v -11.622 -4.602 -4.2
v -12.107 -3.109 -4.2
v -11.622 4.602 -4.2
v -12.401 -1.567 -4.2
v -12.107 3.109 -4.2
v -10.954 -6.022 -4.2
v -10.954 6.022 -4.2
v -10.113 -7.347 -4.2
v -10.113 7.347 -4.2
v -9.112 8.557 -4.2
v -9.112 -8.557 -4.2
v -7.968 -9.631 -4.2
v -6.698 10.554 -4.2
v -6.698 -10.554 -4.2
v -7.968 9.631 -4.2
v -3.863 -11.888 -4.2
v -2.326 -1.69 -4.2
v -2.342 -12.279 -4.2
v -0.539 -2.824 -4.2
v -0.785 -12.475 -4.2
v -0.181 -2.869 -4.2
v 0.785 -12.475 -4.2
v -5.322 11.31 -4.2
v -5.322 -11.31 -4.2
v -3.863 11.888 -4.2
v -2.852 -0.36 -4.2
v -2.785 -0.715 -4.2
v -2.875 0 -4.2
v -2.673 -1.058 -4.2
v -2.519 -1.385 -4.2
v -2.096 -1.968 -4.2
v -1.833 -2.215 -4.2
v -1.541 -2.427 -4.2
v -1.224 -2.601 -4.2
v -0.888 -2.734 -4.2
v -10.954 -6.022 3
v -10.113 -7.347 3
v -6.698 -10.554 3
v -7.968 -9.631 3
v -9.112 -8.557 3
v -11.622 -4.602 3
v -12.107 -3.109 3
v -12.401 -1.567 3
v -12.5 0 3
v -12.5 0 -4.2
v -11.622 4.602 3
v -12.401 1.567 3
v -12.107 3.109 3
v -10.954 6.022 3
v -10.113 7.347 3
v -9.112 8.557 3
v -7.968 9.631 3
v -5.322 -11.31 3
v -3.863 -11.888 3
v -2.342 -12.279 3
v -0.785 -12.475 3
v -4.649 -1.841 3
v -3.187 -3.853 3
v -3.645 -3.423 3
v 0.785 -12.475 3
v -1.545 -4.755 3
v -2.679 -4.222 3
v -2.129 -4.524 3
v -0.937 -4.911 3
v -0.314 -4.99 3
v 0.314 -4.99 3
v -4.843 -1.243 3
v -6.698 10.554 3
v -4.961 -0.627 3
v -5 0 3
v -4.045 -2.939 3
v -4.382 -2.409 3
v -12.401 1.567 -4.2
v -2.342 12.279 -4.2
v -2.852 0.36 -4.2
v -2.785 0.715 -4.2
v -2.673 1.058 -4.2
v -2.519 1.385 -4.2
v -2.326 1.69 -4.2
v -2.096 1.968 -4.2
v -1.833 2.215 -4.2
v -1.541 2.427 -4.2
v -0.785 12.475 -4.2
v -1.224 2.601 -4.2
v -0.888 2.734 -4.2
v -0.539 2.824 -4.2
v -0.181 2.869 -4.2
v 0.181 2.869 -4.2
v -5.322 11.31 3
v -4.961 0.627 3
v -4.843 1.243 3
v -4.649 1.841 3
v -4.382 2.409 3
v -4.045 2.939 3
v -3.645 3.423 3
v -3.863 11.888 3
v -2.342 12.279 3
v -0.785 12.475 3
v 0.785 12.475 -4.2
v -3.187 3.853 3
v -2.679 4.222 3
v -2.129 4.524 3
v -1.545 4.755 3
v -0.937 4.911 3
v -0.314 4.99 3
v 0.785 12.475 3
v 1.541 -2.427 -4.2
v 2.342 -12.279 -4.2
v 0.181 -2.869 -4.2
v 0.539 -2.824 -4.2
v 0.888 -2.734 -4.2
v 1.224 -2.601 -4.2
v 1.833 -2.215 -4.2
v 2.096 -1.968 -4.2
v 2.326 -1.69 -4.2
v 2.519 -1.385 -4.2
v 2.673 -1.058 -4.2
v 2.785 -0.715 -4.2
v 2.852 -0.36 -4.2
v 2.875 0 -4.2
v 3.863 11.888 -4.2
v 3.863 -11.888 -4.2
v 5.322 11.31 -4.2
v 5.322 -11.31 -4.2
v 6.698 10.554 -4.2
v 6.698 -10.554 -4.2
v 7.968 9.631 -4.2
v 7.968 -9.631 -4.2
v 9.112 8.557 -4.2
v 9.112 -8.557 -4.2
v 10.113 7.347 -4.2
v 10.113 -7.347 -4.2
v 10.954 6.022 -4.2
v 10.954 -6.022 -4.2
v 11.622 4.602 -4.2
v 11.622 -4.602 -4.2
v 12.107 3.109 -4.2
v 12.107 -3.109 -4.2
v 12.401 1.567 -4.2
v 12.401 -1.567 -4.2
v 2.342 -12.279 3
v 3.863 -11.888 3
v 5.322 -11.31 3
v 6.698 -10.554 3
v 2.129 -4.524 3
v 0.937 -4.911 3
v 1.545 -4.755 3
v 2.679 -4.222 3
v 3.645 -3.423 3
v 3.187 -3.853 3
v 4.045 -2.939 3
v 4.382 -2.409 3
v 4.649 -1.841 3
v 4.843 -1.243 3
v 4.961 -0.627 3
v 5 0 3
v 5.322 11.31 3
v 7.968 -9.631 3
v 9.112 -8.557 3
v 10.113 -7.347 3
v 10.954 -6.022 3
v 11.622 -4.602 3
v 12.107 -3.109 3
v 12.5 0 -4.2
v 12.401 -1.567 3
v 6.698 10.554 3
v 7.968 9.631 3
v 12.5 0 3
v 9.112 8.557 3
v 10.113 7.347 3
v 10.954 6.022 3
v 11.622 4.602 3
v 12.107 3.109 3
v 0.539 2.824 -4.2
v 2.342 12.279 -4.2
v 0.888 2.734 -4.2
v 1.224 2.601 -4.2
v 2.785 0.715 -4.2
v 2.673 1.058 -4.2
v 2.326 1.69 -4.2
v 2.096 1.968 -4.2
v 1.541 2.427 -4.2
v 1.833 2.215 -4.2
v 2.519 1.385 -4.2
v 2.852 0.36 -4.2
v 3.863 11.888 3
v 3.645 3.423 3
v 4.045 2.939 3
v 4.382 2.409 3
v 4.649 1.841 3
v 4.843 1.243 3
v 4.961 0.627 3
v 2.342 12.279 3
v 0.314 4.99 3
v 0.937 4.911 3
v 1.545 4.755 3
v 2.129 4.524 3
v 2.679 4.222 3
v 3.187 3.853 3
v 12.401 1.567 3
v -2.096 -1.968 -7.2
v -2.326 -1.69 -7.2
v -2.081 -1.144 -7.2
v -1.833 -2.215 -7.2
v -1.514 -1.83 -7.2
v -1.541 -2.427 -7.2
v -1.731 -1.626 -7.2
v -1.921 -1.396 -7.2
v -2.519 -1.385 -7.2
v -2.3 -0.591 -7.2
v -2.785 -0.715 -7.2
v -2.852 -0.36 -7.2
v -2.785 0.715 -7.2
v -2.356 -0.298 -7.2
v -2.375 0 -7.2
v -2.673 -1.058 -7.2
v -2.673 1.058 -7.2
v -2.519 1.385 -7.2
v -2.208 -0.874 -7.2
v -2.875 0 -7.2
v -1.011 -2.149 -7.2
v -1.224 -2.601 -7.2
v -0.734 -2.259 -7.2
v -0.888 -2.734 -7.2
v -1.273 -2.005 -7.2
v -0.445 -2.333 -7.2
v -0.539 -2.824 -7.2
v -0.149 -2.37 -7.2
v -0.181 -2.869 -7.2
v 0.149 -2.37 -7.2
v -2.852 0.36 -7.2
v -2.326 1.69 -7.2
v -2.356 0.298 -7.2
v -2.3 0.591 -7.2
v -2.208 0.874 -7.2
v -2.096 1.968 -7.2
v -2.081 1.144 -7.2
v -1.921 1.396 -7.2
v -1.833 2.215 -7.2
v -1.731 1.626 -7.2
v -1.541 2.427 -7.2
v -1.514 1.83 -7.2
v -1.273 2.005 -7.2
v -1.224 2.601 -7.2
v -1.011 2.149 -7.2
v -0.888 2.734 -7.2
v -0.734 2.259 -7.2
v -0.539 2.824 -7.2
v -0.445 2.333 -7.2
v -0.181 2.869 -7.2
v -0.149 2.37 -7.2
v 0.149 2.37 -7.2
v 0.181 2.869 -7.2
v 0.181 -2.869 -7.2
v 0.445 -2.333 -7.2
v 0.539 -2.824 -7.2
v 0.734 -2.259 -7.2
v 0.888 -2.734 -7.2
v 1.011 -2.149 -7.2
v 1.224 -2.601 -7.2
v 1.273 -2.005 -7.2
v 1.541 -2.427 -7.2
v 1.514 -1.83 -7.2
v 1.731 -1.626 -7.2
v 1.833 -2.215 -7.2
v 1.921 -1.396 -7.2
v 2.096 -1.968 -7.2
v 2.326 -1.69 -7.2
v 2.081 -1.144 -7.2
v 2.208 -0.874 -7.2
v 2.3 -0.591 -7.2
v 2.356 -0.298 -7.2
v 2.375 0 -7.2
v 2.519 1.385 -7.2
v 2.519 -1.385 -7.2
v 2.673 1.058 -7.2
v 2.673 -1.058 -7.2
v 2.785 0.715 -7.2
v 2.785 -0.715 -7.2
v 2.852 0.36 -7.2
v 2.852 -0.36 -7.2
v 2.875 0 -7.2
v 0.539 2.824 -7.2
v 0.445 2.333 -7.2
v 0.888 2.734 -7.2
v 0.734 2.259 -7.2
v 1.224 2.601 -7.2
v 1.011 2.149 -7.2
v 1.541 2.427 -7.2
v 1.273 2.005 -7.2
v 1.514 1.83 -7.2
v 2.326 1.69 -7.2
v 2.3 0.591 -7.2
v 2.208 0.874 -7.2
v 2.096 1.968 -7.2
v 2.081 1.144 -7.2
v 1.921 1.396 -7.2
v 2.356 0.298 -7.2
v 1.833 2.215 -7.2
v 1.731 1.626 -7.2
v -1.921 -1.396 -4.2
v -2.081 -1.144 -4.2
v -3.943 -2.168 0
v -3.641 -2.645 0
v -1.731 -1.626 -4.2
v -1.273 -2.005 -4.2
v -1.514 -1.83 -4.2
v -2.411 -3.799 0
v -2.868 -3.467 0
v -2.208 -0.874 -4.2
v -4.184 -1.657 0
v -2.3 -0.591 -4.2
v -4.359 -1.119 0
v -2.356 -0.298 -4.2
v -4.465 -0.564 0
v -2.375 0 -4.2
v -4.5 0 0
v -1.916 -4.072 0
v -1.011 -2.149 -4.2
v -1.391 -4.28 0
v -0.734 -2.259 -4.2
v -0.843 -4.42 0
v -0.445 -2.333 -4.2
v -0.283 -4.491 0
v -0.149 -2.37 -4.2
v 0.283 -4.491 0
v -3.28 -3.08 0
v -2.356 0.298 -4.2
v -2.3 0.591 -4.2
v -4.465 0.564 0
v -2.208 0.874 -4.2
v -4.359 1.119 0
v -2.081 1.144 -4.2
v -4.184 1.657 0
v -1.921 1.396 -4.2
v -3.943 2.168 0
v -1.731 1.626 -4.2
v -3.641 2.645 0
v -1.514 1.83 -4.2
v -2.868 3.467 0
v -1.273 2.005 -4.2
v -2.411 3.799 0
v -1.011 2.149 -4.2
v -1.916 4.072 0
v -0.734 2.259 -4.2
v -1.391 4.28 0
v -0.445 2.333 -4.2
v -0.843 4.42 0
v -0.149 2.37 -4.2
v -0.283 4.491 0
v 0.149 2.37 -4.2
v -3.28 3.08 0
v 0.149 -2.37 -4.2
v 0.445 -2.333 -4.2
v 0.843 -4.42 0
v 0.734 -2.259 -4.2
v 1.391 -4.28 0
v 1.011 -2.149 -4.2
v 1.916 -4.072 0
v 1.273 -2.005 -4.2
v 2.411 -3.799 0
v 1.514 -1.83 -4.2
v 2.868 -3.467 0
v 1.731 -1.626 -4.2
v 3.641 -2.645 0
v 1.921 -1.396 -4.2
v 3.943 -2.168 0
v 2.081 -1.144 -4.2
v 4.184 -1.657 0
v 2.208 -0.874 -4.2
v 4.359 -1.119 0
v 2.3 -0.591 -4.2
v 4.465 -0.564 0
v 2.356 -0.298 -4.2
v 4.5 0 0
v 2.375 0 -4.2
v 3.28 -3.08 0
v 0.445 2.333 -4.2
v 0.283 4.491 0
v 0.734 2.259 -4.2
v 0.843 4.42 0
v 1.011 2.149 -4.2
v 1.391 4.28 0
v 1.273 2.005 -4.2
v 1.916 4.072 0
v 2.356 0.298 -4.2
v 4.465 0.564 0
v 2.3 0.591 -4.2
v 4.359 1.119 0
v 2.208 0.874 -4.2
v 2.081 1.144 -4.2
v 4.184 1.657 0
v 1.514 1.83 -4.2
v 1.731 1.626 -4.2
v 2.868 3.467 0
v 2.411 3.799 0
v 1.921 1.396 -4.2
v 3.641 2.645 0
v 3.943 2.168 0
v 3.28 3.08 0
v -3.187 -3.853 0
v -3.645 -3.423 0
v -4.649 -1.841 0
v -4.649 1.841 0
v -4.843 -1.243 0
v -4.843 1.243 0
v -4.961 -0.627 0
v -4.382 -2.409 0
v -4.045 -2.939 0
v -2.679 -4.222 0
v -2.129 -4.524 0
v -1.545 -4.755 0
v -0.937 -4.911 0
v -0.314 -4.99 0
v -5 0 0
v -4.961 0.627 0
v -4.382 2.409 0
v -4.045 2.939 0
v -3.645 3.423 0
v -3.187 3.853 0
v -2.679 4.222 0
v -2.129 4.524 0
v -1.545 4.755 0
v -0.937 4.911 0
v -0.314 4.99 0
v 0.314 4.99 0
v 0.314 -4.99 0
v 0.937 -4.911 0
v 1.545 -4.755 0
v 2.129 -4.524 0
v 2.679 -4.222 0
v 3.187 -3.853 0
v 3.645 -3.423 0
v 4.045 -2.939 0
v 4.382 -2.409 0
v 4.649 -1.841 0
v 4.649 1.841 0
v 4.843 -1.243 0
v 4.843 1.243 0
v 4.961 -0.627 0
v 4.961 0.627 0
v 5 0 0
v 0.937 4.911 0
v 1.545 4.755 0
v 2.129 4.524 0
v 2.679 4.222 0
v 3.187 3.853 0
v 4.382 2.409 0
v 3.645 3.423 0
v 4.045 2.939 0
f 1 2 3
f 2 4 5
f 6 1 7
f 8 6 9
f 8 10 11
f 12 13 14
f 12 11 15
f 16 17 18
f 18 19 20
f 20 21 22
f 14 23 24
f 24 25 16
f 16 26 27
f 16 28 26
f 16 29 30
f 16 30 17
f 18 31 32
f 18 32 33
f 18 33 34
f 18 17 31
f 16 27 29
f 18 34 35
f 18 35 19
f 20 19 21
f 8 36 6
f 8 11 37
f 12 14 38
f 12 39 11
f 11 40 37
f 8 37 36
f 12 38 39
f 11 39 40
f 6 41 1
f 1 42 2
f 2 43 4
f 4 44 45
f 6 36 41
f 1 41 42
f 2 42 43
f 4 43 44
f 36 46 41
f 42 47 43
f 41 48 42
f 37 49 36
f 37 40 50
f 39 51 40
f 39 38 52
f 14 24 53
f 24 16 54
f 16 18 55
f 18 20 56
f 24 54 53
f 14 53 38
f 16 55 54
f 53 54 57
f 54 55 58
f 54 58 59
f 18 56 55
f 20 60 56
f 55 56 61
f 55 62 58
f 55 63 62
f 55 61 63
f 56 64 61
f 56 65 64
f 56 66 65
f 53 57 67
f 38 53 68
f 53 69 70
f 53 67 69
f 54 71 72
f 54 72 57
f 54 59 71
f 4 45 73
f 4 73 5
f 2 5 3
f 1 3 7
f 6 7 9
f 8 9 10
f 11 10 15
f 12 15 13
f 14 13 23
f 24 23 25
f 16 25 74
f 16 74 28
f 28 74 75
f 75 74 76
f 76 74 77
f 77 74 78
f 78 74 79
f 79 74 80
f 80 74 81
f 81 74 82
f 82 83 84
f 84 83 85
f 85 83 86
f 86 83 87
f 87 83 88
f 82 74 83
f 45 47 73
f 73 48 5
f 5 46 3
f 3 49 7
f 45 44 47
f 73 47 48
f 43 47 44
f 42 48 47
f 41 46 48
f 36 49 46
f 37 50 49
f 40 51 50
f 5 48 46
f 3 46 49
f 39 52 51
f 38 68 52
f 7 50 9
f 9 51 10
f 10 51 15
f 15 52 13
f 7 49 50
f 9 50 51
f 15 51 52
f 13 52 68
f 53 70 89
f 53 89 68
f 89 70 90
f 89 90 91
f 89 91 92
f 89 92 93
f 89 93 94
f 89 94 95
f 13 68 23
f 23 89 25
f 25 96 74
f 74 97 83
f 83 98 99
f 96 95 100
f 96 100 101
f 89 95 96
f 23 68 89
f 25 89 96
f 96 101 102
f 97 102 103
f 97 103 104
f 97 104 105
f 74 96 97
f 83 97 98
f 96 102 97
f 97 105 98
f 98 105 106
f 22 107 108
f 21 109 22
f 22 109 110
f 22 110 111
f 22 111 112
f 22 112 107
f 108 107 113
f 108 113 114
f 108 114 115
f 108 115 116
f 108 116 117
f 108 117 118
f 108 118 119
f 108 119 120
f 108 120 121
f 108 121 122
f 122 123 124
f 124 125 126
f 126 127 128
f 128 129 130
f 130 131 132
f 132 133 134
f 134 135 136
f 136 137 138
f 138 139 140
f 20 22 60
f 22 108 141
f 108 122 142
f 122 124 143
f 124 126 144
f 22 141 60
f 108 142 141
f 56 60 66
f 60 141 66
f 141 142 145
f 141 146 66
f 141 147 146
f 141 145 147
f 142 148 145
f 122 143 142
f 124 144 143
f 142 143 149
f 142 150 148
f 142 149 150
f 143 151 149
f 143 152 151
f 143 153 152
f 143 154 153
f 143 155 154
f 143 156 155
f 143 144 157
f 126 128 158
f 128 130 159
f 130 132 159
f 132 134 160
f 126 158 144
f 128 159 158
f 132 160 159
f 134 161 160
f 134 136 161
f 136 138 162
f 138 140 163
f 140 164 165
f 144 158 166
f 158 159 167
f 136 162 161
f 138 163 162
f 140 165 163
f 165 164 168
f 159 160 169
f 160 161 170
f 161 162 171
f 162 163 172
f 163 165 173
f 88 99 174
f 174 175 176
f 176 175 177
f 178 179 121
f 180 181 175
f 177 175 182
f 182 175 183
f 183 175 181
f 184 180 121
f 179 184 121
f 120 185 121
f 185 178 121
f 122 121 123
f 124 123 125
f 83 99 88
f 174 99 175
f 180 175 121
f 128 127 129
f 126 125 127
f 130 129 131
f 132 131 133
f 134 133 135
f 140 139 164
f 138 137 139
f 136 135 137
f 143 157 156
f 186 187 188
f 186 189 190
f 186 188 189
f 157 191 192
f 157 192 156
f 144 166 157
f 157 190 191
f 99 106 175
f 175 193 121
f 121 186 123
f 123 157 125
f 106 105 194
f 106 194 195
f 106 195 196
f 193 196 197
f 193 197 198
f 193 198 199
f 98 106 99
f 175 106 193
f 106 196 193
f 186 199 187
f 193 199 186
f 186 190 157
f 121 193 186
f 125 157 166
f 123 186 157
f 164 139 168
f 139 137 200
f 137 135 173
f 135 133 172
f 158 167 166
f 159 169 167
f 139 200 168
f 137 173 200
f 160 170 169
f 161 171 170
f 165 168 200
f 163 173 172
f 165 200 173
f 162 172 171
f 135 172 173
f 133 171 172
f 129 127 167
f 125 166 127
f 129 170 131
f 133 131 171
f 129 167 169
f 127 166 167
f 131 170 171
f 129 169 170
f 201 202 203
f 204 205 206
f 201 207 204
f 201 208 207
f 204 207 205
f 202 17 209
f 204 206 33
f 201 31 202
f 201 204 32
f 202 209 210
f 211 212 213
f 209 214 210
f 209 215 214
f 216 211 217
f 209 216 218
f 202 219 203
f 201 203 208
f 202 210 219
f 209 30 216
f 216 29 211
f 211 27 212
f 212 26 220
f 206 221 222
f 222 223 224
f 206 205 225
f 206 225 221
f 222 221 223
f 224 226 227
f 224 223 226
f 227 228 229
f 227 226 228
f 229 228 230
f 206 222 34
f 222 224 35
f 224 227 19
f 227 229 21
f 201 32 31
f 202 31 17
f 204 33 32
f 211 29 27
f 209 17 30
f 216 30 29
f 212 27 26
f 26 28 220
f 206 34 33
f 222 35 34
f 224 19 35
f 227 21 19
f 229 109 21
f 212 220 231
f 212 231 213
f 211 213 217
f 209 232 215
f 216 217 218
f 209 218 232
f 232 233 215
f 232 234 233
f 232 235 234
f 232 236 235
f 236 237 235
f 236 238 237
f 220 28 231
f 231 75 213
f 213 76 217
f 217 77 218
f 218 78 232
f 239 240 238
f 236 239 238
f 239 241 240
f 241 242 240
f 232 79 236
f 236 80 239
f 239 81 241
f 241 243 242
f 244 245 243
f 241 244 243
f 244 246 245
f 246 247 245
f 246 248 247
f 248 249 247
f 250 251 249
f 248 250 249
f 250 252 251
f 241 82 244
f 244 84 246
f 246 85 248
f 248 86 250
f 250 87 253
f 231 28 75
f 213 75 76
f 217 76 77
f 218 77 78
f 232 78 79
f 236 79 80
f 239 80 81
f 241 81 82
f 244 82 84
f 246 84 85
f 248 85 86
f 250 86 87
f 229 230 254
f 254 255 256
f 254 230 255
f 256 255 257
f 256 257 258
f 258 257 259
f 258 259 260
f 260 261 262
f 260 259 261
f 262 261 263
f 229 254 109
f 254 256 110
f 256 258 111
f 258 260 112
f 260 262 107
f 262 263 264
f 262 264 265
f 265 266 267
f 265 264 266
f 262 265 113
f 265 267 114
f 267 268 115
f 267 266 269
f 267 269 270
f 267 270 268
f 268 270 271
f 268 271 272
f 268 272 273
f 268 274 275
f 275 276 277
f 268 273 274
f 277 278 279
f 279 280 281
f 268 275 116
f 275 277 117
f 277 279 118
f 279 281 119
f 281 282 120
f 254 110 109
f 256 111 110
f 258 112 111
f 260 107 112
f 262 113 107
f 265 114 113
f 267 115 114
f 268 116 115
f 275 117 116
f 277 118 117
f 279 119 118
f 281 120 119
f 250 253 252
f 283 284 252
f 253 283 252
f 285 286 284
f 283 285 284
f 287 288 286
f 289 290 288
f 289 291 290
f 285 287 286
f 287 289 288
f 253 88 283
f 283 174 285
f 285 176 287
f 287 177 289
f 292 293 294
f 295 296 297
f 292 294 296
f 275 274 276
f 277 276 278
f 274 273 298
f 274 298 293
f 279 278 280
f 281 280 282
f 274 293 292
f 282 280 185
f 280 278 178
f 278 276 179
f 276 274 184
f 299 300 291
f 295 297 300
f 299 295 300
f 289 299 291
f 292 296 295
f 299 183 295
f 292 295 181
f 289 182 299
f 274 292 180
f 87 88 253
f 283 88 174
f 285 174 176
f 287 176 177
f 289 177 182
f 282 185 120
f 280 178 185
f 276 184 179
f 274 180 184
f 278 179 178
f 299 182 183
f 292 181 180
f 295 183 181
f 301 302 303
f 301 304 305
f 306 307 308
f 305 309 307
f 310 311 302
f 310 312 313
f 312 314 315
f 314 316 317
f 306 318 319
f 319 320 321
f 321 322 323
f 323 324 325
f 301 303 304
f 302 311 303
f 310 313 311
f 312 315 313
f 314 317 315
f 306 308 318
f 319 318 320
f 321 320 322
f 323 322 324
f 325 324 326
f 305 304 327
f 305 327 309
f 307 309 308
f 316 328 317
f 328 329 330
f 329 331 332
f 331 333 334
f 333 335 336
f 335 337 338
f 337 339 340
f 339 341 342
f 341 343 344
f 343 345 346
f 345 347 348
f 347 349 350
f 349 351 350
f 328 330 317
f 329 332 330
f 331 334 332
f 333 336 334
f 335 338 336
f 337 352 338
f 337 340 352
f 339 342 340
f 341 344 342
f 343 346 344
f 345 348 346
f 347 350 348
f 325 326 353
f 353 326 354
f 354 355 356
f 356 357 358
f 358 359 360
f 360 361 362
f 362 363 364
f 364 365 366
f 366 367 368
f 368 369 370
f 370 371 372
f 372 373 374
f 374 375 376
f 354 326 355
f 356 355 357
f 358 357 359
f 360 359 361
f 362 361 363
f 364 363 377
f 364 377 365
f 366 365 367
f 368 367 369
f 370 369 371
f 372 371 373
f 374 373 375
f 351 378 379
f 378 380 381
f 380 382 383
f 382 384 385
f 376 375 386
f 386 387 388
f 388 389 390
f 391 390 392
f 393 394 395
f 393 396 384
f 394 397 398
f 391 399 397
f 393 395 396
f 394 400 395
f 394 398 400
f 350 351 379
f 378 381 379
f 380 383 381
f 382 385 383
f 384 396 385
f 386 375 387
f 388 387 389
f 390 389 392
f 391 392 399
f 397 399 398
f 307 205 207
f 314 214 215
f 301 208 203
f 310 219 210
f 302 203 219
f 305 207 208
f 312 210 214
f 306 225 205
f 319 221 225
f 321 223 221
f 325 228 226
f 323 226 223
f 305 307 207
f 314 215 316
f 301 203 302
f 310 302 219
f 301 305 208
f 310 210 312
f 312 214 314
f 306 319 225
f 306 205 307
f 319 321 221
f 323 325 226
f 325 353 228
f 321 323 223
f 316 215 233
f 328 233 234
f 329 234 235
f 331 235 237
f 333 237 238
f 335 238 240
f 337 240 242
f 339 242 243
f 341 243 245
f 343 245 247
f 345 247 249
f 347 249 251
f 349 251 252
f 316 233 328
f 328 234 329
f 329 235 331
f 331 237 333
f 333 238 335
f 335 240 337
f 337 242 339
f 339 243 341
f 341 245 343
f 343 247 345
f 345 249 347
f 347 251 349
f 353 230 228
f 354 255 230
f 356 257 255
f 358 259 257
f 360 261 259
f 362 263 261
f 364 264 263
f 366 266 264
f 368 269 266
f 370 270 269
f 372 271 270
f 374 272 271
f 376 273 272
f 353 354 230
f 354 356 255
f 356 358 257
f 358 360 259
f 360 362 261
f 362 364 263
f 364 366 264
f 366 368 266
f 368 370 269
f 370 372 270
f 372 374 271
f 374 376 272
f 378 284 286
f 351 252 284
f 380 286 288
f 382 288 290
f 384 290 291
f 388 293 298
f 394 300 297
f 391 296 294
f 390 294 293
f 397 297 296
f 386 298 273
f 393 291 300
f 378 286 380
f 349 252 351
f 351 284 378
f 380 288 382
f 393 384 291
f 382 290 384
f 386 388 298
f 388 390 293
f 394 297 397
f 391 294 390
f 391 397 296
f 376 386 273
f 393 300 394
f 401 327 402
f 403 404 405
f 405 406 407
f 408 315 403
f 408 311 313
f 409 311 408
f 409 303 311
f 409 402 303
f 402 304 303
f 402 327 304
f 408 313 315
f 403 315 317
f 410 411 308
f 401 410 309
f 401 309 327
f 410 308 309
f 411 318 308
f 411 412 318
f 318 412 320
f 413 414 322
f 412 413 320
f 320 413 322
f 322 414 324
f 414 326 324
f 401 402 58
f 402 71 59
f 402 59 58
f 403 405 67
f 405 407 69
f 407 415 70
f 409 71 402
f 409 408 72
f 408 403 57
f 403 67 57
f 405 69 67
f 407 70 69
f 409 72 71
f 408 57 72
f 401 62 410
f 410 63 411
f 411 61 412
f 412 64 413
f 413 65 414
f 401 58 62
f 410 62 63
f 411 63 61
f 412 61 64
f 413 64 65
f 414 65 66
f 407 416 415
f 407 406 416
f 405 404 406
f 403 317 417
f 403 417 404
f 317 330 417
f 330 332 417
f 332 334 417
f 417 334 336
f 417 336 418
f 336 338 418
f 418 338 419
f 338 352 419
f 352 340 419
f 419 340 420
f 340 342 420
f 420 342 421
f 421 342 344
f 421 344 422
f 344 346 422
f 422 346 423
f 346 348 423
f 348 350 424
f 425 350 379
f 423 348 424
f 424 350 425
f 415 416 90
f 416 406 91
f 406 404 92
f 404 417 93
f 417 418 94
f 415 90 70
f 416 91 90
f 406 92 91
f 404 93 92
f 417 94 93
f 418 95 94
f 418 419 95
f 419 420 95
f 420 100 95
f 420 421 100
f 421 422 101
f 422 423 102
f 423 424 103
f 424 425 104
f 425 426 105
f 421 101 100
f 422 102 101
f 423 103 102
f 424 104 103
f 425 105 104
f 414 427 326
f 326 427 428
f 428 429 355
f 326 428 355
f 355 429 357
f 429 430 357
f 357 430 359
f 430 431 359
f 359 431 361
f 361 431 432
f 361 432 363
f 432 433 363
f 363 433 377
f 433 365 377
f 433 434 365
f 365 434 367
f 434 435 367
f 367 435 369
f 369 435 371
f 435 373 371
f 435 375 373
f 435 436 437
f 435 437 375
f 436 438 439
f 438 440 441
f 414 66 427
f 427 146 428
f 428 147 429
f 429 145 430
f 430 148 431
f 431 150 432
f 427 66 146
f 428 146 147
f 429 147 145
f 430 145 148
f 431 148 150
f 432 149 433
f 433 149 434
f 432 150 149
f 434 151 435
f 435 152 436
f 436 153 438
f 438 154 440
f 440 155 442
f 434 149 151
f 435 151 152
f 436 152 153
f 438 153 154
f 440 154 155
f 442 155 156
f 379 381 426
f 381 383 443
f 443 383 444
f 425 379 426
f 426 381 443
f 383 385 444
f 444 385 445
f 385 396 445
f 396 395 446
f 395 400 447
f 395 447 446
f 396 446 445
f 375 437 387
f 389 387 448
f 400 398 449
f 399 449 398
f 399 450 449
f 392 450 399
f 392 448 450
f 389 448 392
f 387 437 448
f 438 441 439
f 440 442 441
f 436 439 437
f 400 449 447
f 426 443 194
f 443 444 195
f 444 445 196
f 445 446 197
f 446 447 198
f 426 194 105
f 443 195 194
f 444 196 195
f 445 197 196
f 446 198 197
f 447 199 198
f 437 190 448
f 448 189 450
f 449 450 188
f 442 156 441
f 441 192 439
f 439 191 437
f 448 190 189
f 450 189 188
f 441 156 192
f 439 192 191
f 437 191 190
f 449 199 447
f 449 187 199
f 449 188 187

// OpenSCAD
$fn = 50;


difference() {
	union() {
		translate(v = [0, 0, -4.2000000000]) {
			cylinder(h = 7.2000000000, r = 12.5000000000);
		}
		#translate(v = [0, 0, -7.2000000000]) {
			cylinder(h = 7.2000000000, r = 2.8750000000);
		}
	}
	union() {
		translate(v = [0, 0, 0]) {
			rotate(a = [0, 0, 0]) {
				difference() {
					union() {
						translate(v = [0, 0, -7.2000000000]) {
							cylinder(h = 7.2000000000, r = 2.2500000000);
						}
						translate(v = [0, 0, -4.2000000000]) {
							cylinder(h = 4.2000000000, r1 = 2.3750000000, r2 = 4.5000000000);
						}
						translate(v = [0, 0, -7.2000000000]) {
							cylinder(h = 7.2000000000, r = 2.3750000000);
						}
						translate(v = [0, 0, -7.2000000000]) {
							cylinder(h = 7.2000000000, r = 2.2500000000);
						}
					}
					union();
				}
			}
		}
		#cylinder(h = 3, r = 5.0000000000);
	}
}
